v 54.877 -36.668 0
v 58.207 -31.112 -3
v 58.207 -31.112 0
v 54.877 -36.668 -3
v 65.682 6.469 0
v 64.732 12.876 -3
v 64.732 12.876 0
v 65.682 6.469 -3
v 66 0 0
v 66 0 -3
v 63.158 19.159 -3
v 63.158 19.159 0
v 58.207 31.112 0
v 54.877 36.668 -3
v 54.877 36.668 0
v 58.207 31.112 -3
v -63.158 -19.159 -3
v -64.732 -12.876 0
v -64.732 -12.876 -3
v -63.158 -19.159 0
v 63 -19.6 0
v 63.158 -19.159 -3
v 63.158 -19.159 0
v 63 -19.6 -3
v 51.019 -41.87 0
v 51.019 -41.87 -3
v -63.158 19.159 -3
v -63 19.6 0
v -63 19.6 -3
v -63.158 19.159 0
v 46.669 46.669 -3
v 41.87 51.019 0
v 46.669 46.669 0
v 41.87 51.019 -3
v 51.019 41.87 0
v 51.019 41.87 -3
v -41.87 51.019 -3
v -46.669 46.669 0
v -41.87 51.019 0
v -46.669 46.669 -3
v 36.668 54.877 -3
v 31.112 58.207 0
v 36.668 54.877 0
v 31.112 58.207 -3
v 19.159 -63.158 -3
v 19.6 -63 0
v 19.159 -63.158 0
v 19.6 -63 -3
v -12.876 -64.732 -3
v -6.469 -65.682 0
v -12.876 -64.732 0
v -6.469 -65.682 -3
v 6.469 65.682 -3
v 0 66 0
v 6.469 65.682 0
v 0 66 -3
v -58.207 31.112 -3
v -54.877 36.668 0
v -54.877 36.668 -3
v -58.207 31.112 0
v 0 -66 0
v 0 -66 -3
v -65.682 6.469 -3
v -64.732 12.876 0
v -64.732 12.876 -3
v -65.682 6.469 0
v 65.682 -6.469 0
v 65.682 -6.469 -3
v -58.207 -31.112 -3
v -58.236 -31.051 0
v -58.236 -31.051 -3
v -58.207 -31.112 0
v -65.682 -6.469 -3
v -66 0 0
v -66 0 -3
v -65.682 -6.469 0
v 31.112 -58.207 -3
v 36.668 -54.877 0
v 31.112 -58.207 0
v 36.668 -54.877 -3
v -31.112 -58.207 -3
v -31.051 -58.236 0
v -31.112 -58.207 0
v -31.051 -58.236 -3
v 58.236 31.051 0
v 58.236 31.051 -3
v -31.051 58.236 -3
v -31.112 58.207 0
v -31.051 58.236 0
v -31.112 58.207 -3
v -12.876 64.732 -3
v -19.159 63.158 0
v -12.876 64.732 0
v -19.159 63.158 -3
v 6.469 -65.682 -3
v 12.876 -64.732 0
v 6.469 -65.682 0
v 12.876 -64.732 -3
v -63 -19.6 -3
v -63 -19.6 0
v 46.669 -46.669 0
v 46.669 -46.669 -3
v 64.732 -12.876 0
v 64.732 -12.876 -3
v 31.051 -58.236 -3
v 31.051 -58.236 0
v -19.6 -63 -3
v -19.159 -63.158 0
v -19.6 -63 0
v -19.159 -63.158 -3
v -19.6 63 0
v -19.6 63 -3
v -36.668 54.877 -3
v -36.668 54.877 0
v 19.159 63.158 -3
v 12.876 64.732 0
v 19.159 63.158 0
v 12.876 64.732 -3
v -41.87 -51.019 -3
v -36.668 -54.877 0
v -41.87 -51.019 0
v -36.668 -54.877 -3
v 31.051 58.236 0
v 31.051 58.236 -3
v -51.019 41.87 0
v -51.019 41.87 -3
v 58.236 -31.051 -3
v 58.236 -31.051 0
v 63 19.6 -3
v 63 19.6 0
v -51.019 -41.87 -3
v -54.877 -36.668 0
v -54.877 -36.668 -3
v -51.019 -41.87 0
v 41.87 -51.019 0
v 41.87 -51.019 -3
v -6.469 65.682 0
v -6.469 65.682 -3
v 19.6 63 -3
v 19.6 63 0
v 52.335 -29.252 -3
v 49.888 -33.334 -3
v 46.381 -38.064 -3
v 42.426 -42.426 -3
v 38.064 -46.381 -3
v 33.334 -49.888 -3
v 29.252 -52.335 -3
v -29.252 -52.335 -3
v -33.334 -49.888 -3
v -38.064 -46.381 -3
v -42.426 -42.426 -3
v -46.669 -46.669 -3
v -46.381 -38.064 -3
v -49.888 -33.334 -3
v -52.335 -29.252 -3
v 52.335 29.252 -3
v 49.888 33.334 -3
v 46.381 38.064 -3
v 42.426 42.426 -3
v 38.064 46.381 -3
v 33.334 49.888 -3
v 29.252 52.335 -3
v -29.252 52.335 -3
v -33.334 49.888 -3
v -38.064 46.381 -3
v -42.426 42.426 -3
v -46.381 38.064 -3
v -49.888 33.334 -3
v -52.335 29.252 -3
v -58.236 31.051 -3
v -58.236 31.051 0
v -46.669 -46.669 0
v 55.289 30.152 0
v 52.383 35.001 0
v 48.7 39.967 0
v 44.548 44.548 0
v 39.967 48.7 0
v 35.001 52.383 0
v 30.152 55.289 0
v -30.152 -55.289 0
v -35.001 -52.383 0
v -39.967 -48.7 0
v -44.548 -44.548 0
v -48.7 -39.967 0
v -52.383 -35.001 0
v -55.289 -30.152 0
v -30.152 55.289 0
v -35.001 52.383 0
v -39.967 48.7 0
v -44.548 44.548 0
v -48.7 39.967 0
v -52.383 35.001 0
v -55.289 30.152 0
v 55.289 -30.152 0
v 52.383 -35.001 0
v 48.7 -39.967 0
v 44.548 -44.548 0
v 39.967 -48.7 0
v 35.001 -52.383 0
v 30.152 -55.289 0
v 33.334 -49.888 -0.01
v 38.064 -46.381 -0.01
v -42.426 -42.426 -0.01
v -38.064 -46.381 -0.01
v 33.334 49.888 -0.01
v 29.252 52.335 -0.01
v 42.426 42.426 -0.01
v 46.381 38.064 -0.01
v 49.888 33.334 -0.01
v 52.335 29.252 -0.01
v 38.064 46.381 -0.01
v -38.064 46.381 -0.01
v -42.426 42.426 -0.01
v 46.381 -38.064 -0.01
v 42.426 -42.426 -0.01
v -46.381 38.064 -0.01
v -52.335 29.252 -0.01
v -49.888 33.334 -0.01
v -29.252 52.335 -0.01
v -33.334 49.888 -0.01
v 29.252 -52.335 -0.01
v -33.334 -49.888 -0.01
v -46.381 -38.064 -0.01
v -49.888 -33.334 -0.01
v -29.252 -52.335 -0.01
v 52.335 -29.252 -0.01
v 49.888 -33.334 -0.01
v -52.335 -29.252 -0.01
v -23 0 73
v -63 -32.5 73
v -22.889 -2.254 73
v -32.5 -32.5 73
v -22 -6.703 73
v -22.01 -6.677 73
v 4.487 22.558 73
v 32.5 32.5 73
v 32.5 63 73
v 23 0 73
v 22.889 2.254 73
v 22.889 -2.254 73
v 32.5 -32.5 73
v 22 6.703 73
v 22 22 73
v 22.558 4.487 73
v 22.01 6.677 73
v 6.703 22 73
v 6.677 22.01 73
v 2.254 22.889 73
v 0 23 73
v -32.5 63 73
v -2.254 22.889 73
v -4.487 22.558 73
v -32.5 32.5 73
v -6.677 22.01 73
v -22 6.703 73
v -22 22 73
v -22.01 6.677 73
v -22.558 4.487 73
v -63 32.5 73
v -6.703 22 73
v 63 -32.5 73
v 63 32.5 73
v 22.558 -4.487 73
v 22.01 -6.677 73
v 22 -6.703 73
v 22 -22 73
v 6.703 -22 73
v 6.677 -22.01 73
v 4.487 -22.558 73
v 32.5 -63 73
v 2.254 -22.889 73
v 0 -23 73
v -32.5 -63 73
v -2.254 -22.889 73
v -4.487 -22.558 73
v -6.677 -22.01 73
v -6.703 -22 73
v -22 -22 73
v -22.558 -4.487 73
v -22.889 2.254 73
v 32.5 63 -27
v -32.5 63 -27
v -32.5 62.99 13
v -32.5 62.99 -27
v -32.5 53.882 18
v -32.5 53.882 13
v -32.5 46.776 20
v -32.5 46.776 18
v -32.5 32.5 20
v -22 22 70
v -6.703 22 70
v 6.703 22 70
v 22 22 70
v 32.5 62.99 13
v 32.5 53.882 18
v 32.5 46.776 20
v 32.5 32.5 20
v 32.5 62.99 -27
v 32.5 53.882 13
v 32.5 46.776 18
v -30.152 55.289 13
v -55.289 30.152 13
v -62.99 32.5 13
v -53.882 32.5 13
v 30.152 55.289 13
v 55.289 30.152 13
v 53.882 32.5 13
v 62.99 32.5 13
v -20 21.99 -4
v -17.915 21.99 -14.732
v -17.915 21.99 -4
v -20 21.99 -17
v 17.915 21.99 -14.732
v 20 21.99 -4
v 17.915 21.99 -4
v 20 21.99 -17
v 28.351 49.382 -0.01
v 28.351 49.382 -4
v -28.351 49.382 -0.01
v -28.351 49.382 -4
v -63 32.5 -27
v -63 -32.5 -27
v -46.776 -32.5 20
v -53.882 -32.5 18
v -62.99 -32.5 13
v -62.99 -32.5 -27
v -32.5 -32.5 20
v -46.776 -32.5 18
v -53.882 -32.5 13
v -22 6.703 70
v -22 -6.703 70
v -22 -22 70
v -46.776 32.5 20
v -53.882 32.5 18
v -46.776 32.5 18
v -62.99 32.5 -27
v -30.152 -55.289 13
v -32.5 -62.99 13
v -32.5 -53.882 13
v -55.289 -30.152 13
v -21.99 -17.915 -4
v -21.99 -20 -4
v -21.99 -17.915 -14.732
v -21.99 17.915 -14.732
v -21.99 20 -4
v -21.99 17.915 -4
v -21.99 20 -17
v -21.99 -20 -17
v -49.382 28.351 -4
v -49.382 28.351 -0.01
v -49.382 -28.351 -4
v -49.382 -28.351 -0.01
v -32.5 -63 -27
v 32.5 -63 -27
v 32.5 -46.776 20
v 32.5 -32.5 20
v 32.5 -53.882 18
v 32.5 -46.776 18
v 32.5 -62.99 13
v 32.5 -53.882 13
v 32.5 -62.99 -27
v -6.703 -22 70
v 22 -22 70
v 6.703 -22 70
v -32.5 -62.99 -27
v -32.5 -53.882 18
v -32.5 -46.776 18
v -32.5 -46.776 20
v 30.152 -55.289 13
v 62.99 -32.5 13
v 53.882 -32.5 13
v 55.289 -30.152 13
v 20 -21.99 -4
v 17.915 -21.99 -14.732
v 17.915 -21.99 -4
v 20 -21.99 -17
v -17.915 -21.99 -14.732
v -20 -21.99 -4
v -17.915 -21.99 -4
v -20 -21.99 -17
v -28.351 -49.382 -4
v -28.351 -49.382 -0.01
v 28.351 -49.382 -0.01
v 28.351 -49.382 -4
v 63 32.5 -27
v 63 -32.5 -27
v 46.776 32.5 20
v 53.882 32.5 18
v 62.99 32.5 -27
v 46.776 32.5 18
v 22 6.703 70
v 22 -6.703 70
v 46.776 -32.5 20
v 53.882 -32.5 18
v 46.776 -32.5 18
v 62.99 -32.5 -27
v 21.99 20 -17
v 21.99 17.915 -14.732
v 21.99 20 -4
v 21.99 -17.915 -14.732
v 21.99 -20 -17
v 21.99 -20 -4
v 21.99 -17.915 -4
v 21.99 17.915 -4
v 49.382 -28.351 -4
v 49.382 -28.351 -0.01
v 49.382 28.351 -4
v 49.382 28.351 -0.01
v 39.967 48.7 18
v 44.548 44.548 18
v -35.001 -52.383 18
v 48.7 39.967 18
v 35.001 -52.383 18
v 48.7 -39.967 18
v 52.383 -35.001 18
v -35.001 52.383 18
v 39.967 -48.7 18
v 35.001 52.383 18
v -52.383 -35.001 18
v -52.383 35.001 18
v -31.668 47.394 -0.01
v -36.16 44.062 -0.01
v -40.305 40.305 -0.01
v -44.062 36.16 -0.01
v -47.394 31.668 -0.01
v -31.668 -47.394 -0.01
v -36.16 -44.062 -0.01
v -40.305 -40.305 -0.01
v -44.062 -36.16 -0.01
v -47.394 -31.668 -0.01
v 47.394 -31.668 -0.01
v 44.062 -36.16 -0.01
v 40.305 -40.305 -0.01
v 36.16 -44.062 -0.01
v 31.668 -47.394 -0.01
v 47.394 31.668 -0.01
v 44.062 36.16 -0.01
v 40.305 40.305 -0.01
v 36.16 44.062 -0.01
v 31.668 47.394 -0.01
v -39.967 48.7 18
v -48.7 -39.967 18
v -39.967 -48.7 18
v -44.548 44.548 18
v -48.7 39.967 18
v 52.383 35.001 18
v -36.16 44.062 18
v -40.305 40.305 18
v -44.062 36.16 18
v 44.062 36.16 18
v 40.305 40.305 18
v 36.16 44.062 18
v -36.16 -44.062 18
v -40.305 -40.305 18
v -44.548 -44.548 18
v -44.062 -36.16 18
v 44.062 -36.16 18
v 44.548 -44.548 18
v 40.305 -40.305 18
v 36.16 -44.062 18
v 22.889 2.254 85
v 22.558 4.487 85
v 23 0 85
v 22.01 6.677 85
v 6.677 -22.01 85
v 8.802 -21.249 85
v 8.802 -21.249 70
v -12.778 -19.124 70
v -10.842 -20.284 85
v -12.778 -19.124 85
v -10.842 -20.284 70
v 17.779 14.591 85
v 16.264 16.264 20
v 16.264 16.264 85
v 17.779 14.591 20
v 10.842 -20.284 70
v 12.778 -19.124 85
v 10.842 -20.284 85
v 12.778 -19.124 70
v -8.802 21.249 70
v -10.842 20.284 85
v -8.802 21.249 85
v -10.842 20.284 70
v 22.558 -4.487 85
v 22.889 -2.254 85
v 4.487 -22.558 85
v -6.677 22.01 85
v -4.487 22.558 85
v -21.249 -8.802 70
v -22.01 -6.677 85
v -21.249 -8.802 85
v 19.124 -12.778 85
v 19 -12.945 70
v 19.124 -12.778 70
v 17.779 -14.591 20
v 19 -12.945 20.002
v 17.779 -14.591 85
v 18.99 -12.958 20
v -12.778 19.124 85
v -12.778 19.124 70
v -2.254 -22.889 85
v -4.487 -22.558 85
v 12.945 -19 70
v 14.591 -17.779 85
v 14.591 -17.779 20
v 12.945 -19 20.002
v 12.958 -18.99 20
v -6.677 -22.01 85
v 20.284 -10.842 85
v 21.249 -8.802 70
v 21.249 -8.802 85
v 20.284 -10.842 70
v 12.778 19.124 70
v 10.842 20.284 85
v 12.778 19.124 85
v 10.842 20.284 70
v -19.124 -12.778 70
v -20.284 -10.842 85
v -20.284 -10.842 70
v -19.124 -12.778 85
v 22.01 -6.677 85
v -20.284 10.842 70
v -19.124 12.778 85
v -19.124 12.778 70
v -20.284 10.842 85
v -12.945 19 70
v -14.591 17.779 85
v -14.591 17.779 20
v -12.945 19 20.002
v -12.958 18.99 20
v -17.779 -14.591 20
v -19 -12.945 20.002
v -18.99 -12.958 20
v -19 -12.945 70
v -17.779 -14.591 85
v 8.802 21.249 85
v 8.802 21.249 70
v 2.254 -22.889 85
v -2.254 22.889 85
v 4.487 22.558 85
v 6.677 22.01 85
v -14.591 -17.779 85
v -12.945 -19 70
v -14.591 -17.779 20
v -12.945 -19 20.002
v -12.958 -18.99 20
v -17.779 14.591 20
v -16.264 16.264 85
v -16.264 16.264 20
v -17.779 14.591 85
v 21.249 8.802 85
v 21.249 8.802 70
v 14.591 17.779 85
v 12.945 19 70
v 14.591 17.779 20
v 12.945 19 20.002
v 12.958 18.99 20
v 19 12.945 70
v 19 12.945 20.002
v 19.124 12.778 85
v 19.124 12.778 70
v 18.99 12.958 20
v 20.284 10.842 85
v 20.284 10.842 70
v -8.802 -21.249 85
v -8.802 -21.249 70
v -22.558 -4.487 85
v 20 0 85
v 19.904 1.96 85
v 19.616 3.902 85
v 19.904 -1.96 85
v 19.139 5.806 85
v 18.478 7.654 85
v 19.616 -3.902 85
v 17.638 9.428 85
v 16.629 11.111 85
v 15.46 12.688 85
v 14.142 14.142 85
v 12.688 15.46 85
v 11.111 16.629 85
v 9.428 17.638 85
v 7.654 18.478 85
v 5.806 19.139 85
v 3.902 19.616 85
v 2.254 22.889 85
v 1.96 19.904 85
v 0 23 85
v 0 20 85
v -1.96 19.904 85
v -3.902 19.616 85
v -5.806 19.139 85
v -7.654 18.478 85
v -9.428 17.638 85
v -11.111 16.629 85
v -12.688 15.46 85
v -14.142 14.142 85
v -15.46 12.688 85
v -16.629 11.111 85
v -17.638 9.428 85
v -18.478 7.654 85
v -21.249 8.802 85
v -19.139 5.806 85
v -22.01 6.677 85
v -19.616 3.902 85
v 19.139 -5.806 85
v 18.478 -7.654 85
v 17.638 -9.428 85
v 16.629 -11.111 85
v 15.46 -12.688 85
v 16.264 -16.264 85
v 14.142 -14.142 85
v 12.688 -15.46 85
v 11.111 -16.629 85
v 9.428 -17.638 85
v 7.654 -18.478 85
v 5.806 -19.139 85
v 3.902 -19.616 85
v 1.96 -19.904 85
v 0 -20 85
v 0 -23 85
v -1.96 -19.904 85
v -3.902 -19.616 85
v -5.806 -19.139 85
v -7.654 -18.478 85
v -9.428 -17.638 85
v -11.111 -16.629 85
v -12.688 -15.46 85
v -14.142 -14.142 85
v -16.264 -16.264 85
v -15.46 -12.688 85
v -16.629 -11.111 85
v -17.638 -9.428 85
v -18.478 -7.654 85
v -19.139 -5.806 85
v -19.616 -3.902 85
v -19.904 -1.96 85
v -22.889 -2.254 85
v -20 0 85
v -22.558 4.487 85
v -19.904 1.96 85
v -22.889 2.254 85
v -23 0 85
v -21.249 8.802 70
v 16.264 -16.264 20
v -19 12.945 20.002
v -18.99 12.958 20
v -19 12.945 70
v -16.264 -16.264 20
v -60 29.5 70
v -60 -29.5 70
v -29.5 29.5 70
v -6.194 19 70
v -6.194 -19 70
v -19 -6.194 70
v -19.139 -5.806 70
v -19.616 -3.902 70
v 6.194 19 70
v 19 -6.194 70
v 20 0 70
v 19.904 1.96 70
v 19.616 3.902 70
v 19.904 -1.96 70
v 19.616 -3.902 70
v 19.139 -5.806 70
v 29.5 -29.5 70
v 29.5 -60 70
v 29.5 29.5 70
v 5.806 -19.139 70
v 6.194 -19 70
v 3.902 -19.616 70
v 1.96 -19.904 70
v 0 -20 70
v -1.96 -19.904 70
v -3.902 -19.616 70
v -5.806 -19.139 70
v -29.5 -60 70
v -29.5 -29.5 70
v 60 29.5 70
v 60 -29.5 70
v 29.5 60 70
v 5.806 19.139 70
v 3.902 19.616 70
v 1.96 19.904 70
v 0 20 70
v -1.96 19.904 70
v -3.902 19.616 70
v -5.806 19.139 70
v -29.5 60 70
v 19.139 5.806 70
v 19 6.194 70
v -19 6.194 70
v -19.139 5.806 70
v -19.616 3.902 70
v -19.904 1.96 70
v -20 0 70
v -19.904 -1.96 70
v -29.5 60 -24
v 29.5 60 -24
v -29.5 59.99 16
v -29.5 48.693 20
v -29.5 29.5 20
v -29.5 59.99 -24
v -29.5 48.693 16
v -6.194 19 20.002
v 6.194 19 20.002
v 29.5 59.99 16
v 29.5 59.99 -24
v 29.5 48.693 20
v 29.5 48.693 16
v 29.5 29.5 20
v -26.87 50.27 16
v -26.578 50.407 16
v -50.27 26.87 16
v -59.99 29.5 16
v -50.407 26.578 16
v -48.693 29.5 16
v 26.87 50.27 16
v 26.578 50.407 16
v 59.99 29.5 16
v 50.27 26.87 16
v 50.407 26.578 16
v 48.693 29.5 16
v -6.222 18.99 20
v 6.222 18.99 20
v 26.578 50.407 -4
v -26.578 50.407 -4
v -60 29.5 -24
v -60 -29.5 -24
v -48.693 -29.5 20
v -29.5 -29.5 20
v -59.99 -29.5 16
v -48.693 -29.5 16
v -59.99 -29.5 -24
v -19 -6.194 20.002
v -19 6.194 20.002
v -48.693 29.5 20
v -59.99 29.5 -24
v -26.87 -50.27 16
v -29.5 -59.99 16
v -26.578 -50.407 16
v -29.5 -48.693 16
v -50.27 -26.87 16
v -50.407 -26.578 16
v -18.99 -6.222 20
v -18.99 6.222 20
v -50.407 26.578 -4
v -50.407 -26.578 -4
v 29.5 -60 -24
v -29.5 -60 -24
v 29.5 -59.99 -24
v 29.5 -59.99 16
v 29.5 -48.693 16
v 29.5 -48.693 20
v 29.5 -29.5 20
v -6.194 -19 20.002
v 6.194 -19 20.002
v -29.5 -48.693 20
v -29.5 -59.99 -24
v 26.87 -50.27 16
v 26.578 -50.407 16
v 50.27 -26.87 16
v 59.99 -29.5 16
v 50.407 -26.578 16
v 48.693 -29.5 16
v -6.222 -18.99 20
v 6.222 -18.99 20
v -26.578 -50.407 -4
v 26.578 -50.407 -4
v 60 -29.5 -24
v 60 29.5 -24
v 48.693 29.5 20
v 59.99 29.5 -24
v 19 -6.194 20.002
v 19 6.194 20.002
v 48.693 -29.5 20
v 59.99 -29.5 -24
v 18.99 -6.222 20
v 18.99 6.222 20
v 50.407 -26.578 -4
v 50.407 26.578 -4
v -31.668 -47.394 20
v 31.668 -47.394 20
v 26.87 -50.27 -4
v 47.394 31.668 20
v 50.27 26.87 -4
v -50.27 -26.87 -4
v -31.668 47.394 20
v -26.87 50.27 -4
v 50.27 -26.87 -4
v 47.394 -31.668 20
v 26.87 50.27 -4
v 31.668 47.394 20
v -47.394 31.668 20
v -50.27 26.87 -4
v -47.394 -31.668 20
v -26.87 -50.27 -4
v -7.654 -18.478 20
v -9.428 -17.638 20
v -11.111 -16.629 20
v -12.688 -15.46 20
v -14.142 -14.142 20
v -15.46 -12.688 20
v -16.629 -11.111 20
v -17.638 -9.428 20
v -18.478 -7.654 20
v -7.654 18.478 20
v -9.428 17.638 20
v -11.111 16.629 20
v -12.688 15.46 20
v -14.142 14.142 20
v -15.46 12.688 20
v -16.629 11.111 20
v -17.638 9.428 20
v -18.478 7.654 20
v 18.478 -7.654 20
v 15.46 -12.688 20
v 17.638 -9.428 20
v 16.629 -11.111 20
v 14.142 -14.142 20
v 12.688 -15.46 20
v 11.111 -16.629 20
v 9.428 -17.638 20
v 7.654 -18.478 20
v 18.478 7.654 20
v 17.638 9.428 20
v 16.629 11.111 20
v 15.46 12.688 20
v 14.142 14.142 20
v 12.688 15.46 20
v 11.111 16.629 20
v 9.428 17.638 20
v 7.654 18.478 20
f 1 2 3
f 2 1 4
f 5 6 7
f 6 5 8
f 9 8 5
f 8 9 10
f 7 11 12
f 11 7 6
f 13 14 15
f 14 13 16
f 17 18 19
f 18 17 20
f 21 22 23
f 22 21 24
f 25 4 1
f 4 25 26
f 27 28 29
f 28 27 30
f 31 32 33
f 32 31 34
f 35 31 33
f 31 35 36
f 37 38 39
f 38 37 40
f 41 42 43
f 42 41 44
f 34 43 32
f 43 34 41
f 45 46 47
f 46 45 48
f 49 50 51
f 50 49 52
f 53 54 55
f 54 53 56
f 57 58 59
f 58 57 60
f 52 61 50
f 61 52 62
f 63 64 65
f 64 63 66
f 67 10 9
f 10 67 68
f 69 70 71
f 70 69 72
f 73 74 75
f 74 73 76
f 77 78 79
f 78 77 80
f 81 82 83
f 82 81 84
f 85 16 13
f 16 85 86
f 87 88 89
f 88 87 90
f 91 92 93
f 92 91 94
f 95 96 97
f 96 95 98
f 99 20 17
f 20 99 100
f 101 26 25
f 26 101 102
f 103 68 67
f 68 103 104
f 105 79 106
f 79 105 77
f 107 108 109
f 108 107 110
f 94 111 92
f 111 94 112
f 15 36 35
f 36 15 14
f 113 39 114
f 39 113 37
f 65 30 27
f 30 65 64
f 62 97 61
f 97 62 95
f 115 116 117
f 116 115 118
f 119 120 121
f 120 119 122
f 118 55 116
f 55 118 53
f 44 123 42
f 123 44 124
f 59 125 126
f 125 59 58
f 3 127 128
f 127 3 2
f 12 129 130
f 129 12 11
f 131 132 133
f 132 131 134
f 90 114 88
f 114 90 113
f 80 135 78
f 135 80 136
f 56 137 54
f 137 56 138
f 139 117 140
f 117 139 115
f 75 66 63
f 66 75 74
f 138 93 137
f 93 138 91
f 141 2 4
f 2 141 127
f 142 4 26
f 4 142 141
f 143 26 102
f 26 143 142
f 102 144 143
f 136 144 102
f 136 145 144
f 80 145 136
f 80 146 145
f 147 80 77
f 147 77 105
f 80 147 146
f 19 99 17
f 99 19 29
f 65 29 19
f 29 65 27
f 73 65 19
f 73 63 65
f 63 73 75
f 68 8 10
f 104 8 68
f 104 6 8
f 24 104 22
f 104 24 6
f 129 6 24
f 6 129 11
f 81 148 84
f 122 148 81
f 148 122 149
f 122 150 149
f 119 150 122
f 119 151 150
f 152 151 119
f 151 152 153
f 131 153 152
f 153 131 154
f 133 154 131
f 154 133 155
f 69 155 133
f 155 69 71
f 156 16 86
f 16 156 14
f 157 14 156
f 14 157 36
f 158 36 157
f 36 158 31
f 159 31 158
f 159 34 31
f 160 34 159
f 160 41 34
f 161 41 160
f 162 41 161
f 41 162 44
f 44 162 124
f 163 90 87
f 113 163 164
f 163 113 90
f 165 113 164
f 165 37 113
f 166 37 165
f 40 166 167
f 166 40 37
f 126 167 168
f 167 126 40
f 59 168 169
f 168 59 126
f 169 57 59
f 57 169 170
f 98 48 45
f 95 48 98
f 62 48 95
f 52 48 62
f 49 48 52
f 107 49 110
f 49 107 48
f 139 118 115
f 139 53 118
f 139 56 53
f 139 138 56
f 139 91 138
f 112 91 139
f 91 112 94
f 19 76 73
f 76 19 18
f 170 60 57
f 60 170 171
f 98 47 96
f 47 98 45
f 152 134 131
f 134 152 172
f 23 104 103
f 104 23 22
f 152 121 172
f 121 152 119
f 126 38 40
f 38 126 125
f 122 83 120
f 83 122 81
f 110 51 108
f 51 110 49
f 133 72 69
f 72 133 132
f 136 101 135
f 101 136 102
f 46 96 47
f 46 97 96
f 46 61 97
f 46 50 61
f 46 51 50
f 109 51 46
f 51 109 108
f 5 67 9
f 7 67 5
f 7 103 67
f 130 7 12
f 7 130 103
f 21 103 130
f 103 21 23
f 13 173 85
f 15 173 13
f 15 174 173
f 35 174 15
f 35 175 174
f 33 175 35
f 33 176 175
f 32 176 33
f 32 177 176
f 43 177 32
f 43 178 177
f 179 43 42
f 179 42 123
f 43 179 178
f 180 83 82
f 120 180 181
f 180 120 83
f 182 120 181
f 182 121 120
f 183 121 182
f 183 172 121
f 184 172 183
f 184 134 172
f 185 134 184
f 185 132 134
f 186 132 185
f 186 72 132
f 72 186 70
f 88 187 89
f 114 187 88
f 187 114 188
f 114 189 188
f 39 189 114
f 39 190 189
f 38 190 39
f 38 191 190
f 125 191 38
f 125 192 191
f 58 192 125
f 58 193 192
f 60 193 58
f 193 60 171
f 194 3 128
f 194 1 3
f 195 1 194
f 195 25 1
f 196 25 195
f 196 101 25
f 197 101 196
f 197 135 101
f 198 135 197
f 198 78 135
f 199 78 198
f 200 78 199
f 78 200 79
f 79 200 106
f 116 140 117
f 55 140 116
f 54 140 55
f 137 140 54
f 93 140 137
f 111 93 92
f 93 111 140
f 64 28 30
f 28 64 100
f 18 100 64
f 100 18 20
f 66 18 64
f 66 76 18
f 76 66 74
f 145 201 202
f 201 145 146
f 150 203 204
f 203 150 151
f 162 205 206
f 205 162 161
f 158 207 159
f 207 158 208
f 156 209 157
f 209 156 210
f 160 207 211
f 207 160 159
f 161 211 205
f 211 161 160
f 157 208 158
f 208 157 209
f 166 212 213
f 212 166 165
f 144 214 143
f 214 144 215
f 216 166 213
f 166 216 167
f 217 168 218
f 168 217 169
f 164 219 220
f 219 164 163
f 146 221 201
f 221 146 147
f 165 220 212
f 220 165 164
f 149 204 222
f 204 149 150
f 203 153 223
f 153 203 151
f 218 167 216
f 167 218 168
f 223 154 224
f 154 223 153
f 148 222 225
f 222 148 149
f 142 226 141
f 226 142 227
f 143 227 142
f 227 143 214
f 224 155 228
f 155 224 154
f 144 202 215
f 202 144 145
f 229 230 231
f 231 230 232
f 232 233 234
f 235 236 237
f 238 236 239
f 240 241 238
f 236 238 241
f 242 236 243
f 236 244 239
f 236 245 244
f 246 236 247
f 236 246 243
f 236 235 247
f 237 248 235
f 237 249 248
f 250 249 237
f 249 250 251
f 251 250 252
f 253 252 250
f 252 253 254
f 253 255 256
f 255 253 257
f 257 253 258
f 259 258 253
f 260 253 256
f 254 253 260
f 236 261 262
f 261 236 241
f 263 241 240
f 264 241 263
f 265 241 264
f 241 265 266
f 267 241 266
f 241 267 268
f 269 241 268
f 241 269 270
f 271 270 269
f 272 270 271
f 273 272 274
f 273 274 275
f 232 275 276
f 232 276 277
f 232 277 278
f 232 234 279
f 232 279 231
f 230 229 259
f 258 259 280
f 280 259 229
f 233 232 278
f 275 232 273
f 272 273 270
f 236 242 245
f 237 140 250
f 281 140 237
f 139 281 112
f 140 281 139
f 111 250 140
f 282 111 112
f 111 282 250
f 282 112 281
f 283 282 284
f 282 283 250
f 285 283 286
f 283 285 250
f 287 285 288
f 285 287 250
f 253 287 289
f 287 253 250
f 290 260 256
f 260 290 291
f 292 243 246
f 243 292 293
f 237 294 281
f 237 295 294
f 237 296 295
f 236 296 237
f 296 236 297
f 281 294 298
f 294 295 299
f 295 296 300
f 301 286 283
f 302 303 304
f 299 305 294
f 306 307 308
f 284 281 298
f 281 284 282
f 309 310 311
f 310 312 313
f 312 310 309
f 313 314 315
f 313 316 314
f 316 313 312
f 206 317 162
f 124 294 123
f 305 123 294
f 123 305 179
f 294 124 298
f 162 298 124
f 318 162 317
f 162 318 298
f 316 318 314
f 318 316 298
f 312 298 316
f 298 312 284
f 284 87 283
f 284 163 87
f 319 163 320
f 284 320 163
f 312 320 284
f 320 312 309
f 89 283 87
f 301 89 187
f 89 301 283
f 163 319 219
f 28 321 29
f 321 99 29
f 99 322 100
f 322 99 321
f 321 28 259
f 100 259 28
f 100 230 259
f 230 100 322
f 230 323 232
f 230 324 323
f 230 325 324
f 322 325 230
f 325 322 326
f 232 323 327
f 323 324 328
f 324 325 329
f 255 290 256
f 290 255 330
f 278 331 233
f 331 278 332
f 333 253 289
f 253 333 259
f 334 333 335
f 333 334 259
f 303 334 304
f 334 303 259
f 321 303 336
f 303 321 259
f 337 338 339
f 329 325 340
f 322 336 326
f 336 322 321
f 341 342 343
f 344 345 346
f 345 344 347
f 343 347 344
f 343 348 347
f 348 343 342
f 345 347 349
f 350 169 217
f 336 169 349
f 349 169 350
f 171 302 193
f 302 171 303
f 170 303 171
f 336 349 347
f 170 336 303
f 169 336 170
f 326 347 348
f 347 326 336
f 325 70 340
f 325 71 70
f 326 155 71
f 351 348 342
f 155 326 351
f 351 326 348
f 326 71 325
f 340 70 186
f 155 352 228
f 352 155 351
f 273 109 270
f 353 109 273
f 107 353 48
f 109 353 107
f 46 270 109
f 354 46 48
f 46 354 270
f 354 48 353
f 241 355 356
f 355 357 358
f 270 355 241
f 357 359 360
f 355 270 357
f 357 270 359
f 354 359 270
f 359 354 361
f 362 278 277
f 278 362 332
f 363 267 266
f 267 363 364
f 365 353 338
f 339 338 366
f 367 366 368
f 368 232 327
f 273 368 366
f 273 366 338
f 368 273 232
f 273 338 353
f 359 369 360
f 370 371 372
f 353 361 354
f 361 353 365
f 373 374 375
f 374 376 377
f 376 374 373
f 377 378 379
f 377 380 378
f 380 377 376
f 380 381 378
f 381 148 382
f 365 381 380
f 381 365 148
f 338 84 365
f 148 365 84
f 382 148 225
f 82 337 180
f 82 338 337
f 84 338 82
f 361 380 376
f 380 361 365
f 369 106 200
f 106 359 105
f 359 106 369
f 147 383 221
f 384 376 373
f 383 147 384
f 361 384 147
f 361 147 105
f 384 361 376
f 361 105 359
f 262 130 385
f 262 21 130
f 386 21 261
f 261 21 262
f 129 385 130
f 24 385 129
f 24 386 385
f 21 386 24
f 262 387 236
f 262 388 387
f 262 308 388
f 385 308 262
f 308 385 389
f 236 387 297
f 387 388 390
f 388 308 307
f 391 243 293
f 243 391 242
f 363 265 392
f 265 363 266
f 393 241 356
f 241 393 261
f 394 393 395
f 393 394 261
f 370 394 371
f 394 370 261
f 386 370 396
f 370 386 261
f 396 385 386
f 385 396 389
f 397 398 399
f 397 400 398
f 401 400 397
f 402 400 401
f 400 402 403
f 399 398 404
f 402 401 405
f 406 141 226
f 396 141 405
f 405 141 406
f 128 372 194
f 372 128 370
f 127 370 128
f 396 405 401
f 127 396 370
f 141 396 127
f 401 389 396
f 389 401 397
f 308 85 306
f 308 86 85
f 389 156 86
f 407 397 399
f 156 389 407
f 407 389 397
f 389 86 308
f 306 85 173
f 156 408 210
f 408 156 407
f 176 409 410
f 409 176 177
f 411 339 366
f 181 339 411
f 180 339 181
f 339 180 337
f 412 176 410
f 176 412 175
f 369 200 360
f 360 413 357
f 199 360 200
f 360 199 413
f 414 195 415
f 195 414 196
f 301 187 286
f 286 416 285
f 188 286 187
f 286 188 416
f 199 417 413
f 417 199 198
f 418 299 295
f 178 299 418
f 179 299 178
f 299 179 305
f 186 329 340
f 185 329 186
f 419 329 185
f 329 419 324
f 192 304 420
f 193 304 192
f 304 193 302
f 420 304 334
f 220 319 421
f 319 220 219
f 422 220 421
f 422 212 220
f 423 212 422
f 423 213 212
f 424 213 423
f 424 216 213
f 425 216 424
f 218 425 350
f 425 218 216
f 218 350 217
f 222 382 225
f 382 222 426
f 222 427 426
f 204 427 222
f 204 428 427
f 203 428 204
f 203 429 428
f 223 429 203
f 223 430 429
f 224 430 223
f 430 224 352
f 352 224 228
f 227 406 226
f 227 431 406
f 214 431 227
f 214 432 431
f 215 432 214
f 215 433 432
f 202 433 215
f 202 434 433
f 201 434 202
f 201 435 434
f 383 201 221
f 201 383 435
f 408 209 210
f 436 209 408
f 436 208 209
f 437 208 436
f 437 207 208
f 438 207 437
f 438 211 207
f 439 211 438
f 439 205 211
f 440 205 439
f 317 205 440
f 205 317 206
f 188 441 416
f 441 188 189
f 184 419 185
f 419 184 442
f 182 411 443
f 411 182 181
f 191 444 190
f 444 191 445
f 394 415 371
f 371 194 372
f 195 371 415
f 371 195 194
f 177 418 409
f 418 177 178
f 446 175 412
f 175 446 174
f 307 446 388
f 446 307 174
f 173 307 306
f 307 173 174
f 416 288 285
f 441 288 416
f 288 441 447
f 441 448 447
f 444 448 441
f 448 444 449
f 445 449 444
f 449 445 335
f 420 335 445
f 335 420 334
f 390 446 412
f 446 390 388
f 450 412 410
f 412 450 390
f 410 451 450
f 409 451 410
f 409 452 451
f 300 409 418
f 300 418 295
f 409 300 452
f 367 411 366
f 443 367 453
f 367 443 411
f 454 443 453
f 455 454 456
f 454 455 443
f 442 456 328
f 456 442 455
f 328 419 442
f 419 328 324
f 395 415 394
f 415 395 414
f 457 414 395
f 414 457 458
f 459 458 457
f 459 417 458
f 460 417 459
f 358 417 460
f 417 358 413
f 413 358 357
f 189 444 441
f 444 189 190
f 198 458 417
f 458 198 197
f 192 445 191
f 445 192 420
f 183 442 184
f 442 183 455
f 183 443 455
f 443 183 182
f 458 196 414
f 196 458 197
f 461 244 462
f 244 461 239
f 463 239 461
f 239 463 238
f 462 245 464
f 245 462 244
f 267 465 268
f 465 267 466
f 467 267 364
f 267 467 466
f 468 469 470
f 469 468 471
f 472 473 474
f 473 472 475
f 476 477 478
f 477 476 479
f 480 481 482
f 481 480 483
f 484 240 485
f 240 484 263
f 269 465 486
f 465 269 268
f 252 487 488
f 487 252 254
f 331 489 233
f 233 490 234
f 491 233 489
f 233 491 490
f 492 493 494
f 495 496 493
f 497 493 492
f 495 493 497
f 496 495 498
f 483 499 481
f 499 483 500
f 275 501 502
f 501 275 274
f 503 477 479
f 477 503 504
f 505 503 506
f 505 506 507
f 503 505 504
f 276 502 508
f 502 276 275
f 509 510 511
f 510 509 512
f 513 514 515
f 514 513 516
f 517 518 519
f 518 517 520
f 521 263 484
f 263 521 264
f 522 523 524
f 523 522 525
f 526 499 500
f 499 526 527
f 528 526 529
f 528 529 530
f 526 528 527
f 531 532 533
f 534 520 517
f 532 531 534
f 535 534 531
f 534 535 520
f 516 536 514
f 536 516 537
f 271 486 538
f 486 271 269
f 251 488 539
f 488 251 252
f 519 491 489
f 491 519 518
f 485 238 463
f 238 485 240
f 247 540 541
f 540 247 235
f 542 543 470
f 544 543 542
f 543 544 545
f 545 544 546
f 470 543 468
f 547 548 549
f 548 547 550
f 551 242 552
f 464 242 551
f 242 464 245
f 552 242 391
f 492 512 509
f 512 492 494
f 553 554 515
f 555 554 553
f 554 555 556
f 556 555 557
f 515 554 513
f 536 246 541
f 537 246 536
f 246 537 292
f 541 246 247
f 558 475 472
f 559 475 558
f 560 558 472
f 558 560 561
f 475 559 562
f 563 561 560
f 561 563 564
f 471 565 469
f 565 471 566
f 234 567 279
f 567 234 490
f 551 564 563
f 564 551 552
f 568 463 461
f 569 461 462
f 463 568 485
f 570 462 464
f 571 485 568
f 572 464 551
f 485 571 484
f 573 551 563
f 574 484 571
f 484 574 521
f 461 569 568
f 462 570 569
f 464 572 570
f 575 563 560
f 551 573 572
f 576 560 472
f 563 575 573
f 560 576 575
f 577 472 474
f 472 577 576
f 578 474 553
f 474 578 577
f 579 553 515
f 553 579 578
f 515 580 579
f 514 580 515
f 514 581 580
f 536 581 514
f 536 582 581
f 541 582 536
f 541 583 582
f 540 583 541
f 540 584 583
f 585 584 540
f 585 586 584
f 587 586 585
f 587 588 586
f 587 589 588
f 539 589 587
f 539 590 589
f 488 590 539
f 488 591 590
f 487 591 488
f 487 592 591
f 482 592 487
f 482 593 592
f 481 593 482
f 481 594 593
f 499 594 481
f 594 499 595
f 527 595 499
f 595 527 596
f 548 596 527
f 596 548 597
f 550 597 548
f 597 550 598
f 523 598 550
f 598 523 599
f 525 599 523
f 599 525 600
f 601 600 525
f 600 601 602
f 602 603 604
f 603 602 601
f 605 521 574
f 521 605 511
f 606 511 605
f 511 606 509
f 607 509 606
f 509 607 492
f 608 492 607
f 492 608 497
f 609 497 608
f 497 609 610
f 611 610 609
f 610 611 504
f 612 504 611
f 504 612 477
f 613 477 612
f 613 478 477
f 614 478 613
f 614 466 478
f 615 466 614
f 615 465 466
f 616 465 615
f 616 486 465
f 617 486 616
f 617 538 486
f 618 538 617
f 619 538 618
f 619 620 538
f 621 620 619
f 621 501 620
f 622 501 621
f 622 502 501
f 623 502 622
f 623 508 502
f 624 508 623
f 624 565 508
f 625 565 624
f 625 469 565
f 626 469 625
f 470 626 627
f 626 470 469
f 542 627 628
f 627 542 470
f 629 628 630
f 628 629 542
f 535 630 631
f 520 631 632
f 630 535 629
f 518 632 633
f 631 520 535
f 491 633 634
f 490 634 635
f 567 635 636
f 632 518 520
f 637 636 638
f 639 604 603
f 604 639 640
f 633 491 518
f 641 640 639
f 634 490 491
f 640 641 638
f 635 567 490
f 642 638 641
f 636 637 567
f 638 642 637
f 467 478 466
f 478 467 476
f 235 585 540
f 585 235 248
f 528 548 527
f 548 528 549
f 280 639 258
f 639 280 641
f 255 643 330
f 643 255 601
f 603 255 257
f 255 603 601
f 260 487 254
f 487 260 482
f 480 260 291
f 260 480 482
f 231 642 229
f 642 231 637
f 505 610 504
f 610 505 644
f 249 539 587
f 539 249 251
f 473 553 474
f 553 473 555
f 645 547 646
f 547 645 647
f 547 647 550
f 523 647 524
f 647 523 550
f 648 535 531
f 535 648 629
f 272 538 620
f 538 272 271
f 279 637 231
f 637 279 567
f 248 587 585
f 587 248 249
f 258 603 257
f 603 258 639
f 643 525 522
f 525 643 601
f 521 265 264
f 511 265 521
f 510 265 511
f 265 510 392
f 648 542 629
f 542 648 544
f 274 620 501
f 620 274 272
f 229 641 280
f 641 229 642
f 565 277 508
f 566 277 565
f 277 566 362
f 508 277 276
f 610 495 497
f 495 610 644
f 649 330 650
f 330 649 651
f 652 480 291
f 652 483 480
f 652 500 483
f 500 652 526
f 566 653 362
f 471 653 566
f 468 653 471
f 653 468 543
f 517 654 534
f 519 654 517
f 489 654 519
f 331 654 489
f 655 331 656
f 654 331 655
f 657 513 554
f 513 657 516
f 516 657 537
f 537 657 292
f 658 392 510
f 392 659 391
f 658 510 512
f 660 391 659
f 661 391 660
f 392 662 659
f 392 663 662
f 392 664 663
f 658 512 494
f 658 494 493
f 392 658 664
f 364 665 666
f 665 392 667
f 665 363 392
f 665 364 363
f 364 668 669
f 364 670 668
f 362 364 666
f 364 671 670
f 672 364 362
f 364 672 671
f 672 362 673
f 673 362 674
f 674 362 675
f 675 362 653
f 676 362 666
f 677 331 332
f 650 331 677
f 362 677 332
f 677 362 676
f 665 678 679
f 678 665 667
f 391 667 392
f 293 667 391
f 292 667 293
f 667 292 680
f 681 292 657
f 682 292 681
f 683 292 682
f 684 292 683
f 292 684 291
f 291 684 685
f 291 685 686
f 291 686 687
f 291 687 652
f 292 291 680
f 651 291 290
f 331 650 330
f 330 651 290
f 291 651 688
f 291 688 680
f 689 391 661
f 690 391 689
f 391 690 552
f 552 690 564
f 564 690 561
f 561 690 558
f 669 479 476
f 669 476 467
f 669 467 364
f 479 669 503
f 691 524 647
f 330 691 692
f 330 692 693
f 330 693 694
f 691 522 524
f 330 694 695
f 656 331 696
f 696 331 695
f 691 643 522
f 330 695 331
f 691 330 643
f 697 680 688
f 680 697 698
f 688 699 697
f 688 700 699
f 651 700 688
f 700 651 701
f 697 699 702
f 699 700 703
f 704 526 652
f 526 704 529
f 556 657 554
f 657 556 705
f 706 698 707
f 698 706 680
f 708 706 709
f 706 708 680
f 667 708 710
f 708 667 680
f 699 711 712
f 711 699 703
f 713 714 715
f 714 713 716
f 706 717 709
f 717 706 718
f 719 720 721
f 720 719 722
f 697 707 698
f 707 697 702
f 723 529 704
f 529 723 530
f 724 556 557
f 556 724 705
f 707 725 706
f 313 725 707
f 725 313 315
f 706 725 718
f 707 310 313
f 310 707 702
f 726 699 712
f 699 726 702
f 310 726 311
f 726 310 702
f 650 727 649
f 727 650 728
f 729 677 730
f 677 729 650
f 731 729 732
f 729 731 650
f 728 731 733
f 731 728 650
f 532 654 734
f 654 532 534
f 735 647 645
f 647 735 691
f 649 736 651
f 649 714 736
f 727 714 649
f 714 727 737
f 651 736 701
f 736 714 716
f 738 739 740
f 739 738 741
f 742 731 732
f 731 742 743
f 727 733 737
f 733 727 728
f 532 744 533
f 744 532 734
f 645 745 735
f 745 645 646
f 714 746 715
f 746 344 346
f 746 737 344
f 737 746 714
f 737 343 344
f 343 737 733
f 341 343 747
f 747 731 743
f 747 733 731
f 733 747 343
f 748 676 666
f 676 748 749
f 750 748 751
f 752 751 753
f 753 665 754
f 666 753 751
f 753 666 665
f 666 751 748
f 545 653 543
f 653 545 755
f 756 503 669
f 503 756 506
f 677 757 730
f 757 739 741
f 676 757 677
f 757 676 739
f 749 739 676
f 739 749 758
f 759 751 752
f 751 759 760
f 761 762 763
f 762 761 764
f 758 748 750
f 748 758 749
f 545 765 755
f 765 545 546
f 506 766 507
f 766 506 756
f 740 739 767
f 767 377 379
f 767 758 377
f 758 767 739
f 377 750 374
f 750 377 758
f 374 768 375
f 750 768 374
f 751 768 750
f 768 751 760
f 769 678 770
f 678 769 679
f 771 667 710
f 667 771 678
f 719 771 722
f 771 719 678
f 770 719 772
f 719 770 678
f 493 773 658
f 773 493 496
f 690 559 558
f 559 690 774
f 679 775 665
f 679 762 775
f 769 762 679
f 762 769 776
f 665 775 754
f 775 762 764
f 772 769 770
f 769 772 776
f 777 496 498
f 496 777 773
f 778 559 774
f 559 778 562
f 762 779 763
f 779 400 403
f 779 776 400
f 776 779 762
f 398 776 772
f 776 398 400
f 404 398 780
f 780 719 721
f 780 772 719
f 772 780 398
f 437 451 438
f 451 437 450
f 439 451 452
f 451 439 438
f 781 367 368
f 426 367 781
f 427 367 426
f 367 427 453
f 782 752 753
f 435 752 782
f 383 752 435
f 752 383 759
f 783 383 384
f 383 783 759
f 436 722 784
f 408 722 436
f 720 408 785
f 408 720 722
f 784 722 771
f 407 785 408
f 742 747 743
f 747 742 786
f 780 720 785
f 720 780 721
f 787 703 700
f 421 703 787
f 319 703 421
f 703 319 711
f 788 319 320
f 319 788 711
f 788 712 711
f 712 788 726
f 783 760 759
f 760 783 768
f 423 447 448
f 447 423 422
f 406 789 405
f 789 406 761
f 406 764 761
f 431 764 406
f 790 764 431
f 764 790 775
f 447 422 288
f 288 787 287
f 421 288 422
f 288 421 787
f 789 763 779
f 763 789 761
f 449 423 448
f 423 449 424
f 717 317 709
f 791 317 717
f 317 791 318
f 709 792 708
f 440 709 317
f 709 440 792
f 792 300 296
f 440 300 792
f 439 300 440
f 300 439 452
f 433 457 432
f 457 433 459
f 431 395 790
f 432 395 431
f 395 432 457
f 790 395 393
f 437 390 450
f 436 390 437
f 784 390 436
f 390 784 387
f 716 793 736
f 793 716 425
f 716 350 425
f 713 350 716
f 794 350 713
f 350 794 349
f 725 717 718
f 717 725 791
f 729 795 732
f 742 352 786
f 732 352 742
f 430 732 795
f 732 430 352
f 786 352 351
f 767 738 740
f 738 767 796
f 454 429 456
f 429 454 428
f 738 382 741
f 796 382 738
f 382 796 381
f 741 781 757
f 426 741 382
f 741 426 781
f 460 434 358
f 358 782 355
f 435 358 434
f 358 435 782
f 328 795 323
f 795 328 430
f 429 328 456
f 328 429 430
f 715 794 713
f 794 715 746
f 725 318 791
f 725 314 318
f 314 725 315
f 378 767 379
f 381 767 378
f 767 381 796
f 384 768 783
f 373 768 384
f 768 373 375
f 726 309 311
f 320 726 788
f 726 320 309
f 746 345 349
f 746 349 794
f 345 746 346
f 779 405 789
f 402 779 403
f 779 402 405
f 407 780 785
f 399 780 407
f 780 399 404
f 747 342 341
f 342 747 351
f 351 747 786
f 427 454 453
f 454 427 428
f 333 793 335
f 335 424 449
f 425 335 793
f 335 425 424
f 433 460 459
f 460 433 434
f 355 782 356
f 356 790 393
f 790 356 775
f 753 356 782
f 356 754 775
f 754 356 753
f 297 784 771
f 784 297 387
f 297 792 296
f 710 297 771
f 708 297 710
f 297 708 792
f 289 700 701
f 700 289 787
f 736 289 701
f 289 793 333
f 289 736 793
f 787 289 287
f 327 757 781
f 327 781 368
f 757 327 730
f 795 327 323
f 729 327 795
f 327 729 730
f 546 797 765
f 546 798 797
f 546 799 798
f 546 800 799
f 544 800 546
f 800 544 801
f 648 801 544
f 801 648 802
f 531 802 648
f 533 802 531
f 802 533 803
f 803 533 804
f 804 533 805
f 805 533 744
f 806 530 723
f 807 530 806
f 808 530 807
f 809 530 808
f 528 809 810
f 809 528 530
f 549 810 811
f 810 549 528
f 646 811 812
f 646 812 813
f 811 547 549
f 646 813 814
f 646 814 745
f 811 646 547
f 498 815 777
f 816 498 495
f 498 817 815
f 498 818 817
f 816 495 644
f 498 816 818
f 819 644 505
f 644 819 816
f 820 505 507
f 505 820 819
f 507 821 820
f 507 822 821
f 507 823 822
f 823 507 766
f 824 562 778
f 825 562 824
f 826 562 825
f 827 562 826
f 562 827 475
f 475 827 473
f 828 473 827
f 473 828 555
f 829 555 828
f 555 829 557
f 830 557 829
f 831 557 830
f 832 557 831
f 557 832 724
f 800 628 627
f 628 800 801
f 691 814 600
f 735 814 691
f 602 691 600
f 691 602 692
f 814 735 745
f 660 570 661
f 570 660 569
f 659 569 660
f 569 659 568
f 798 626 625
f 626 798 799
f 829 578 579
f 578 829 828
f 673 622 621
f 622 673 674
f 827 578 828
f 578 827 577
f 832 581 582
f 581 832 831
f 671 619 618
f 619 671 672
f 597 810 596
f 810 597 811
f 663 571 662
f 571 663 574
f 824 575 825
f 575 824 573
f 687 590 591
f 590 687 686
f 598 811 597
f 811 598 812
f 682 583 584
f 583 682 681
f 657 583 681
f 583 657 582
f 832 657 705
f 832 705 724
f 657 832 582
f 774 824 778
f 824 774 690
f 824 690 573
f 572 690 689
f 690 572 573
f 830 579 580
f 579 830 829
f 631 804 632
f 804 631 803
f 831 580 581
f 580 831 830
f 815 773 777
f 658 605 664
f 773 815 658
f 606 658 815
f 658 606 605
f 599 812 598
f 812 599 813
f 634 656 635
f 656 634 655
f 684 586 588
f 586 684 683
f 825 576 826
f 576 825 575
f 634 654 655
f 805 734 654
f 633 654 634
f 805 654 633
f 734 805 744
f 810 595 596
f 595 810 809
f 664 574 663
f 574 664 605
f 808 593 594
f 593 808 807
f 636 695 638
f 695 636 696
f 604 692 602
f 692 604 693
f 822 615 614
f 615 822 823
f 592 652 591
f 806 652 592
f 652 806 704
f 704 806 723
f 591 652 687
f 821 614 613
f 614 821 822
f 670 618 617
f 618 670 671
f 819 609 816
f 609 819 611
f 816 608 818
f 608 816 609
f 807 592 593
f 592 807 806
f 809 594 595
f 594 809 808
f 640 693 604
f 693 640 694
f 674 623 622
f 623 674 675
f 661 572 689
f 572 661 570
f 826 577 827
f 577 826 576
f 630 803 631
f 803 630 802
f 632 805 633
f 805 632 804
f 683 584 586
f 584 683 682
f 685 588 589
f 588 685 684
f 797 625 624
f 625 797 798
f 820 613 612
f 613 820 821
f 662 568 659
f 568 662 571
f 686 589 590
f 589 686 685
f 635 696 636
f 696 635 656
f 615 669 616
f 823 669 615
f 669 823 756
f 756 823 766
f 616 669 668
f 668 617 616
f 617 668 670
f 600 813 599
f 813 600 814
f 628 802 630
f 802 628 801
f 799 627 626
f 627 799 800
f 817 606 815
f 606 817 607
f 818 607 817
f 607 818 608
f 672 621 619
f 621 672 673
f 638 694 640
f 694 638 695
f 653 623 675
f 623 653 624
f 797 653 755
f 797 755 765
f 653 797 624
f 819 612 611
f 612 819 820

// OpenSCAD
// s_aft_edf_plenum.scad
// 4-to-1 cross-shaped internal air manifold for Serenity Rev N 24" hull
// Routes airflow from 4 radial neck scoops (station ~310mm) to the 120mm
// fuselage EDF (fan face at station ~430mm, inside Panel F engine bell).
// Print in PETG; bond to intake frame duct arms and EDF mount ring.
//
// Coordinate origin: centre of EDF fan face (output end).
// +Z = forward (toward nose, toward scoop inlets); −Z = aft (toward EDF fan).

// ── Dimensions ───────────────────────────────────────────────────────────────
EDF_D    = 120;    // 120mm EDF outer diameter
EDF_HUB  =  28;    // EDF hub/spinner diameter (annular fan)
ARM_W    =  65;    // duct arm width  (matches scoop window)
ARM_H    =  60;    // duct arm height (matches scoop window)
WALL     =   3;    // duct wall thickness [mm]
ARM_LEN  =  40;    // length of each rectangular inlet arm
TAPER_L  =  40;    // transition / merger zone length
TOTAL_L  =  80;    // ARM_LEN + TAPER_L
CENTRE_R =  20;    // radius of central merger zone (cross-bar where arms meet)

$fn = 64;

// ── Main module ───────────────────────────────────────────────────────────────
// Note: _edf_lip() is included inside the union so it shares the same boolean
// context as the outlet bell.  Placing it outside the difference() creates a
// touching face at Z=0 (lip top == bell bottom) which yields a non-manifold mesh.
module aft_edf_plenum() {
    difference() {
        union() {
            // EDF outlet bell: circular duct matching EDF OD
            _edf_outlet_bell();
            // EDF retaining lip ring (stands proud ~3mm on aft face for bonding).
            // Merged with the bell in this union to avoid touching faces at Z=0.
            _edf_lip();
            // Four tapered arms transitioning to rectangular inlets
            for (a = [0, 90, 180, 270])
                rotate([0, 0, a]) _inlet_arm();
            // Central merger hub connecting all four arms
            _merger_hub();
        }
        // Hollow out — keep WALL-thick walls everywhere
        union() {
            // Inner EDF bore: extend to cover lip region (Z=-3) so the lip is also
            // hollowed.  Height = 20+3+1 covers Z=-4..Z=20, clearing the full lip.
            translate([0, 0, -(3 + 1)])
            cylinder(h = 20 + 3 + 1, d = EDF_D - 2*WALL);
            // Hollow each arm interior
            for (a = [0, 90, 180, 270])
                rotate([0, 0, a]) _inlet_arm_hollow();
            // Hollow merger hub
            _merger_hub_hollow();
        }
    }
}

// Outlet bell: circular PETG sleeve bonding over EDF casing.
// Starts at Z=-0.01 (not Z=0) to avoid a coplanar face with the _edf_lip()
// top face at Z=0 — coincident faces at Z=0 produce non-manifold CGAL topology.
module _edf_outlet_bell() {
    translate([0, 0, -0.01])
    cylinder(h = 18 + 0.01, d = EDF_D + 2*WALL);
}

module _edf_lip() {
    translate([0, 0, -3])
    difference() {
        cylinder(h = 3, d = EDF_D + 2*WALL + 6);
        cylinder(h = 3 + 1, d = EDF_D, center = false);
    }
}

// One tapered inlet arm pointing in +Y before rotation.
// ARM_LEN+1 / TAPER_L+1: each arm solid penetrates 1 mm past the hub outer wall
// (CENTRE_R+WALL = 23 mm) so the union has no touching/coplanar face at that boundary.
// The hollow (_inlet_arm_hollow) already uses the same +1 offset from EDF_D/2 (not
// EDF_D/2+WALL), keeping 3 mm wall thickness throughout.
module _inlet_arm() {
    // Rectangular inlet section — extends 1 mm into hub outer wall
    translate([0, EDF_D/2 + WALL, TOTAL_L - ARM_LEN + WALL])
    rotate([90, 0, 0])
    linear_extrude(height = ARM_LEN + 1)
    square([ARM_W, ARM_H], center = true);

    // Tapered transition: rectangular inlet → square merger zone; 1 mm hub overlap
    translate([0, EDF_D/2 + WALL, WALL])
    rotate([90, 0, 0])
    _taper_solid(ARM_W, ARM_H, CENTRE_R * 2, CENTRE_R * 2, TAPER_L + 1);
}

module _inlet_arm_hollow() {
    IW = ARM_W - 2*WALL;
    IH = ARM_H - 2*WALL;
    translate([0, EDF_D/2, TOTAL_L - ARM_LEN + WALL])
    rotate([90, 0, 0])
    linear_extrude(height = ARM_LEN + 1)
    square([IW, IH], center = true);

    translate([0, EDF_D/2, WALL])
    rotate([90, 0, 0])
    _taper_solid(IW, IH, (CENTRE_R - WALL)*2, (CENTRE_R - WALL)*2, TAPER_L + 1);
}

// Central merger hub: hemisphere-like volume where 4 arms converge
module _merger_hub() {
    translate([0, 0, WALL])
    cylinder(h = TOTAL_L + 2, d = CENTRE_R * 2 + WALL * 2);
}

module _merger_hub_hollow() {
    translate([0, 0, 0])
    cylinder(h = TOTAL_L + 10, d = CENTRE_R * 2);
}

// Parametric linear taper between two rectangles (for use with rotate([90,0,0]))
// Z-axis is the taper axis here; actual orientation handled by caller's rotate
module _taper_solid(w1, h1, w2, h2, length) {
    hull() {
        linear_extrude(height = 0.01)
        square([w1, h1], center = true);
        translate([0, 0, length])
        linear_extrude(height = 0.01)
        square([w2, h2], center = true);
    }
}

aft_edf_plenum();
